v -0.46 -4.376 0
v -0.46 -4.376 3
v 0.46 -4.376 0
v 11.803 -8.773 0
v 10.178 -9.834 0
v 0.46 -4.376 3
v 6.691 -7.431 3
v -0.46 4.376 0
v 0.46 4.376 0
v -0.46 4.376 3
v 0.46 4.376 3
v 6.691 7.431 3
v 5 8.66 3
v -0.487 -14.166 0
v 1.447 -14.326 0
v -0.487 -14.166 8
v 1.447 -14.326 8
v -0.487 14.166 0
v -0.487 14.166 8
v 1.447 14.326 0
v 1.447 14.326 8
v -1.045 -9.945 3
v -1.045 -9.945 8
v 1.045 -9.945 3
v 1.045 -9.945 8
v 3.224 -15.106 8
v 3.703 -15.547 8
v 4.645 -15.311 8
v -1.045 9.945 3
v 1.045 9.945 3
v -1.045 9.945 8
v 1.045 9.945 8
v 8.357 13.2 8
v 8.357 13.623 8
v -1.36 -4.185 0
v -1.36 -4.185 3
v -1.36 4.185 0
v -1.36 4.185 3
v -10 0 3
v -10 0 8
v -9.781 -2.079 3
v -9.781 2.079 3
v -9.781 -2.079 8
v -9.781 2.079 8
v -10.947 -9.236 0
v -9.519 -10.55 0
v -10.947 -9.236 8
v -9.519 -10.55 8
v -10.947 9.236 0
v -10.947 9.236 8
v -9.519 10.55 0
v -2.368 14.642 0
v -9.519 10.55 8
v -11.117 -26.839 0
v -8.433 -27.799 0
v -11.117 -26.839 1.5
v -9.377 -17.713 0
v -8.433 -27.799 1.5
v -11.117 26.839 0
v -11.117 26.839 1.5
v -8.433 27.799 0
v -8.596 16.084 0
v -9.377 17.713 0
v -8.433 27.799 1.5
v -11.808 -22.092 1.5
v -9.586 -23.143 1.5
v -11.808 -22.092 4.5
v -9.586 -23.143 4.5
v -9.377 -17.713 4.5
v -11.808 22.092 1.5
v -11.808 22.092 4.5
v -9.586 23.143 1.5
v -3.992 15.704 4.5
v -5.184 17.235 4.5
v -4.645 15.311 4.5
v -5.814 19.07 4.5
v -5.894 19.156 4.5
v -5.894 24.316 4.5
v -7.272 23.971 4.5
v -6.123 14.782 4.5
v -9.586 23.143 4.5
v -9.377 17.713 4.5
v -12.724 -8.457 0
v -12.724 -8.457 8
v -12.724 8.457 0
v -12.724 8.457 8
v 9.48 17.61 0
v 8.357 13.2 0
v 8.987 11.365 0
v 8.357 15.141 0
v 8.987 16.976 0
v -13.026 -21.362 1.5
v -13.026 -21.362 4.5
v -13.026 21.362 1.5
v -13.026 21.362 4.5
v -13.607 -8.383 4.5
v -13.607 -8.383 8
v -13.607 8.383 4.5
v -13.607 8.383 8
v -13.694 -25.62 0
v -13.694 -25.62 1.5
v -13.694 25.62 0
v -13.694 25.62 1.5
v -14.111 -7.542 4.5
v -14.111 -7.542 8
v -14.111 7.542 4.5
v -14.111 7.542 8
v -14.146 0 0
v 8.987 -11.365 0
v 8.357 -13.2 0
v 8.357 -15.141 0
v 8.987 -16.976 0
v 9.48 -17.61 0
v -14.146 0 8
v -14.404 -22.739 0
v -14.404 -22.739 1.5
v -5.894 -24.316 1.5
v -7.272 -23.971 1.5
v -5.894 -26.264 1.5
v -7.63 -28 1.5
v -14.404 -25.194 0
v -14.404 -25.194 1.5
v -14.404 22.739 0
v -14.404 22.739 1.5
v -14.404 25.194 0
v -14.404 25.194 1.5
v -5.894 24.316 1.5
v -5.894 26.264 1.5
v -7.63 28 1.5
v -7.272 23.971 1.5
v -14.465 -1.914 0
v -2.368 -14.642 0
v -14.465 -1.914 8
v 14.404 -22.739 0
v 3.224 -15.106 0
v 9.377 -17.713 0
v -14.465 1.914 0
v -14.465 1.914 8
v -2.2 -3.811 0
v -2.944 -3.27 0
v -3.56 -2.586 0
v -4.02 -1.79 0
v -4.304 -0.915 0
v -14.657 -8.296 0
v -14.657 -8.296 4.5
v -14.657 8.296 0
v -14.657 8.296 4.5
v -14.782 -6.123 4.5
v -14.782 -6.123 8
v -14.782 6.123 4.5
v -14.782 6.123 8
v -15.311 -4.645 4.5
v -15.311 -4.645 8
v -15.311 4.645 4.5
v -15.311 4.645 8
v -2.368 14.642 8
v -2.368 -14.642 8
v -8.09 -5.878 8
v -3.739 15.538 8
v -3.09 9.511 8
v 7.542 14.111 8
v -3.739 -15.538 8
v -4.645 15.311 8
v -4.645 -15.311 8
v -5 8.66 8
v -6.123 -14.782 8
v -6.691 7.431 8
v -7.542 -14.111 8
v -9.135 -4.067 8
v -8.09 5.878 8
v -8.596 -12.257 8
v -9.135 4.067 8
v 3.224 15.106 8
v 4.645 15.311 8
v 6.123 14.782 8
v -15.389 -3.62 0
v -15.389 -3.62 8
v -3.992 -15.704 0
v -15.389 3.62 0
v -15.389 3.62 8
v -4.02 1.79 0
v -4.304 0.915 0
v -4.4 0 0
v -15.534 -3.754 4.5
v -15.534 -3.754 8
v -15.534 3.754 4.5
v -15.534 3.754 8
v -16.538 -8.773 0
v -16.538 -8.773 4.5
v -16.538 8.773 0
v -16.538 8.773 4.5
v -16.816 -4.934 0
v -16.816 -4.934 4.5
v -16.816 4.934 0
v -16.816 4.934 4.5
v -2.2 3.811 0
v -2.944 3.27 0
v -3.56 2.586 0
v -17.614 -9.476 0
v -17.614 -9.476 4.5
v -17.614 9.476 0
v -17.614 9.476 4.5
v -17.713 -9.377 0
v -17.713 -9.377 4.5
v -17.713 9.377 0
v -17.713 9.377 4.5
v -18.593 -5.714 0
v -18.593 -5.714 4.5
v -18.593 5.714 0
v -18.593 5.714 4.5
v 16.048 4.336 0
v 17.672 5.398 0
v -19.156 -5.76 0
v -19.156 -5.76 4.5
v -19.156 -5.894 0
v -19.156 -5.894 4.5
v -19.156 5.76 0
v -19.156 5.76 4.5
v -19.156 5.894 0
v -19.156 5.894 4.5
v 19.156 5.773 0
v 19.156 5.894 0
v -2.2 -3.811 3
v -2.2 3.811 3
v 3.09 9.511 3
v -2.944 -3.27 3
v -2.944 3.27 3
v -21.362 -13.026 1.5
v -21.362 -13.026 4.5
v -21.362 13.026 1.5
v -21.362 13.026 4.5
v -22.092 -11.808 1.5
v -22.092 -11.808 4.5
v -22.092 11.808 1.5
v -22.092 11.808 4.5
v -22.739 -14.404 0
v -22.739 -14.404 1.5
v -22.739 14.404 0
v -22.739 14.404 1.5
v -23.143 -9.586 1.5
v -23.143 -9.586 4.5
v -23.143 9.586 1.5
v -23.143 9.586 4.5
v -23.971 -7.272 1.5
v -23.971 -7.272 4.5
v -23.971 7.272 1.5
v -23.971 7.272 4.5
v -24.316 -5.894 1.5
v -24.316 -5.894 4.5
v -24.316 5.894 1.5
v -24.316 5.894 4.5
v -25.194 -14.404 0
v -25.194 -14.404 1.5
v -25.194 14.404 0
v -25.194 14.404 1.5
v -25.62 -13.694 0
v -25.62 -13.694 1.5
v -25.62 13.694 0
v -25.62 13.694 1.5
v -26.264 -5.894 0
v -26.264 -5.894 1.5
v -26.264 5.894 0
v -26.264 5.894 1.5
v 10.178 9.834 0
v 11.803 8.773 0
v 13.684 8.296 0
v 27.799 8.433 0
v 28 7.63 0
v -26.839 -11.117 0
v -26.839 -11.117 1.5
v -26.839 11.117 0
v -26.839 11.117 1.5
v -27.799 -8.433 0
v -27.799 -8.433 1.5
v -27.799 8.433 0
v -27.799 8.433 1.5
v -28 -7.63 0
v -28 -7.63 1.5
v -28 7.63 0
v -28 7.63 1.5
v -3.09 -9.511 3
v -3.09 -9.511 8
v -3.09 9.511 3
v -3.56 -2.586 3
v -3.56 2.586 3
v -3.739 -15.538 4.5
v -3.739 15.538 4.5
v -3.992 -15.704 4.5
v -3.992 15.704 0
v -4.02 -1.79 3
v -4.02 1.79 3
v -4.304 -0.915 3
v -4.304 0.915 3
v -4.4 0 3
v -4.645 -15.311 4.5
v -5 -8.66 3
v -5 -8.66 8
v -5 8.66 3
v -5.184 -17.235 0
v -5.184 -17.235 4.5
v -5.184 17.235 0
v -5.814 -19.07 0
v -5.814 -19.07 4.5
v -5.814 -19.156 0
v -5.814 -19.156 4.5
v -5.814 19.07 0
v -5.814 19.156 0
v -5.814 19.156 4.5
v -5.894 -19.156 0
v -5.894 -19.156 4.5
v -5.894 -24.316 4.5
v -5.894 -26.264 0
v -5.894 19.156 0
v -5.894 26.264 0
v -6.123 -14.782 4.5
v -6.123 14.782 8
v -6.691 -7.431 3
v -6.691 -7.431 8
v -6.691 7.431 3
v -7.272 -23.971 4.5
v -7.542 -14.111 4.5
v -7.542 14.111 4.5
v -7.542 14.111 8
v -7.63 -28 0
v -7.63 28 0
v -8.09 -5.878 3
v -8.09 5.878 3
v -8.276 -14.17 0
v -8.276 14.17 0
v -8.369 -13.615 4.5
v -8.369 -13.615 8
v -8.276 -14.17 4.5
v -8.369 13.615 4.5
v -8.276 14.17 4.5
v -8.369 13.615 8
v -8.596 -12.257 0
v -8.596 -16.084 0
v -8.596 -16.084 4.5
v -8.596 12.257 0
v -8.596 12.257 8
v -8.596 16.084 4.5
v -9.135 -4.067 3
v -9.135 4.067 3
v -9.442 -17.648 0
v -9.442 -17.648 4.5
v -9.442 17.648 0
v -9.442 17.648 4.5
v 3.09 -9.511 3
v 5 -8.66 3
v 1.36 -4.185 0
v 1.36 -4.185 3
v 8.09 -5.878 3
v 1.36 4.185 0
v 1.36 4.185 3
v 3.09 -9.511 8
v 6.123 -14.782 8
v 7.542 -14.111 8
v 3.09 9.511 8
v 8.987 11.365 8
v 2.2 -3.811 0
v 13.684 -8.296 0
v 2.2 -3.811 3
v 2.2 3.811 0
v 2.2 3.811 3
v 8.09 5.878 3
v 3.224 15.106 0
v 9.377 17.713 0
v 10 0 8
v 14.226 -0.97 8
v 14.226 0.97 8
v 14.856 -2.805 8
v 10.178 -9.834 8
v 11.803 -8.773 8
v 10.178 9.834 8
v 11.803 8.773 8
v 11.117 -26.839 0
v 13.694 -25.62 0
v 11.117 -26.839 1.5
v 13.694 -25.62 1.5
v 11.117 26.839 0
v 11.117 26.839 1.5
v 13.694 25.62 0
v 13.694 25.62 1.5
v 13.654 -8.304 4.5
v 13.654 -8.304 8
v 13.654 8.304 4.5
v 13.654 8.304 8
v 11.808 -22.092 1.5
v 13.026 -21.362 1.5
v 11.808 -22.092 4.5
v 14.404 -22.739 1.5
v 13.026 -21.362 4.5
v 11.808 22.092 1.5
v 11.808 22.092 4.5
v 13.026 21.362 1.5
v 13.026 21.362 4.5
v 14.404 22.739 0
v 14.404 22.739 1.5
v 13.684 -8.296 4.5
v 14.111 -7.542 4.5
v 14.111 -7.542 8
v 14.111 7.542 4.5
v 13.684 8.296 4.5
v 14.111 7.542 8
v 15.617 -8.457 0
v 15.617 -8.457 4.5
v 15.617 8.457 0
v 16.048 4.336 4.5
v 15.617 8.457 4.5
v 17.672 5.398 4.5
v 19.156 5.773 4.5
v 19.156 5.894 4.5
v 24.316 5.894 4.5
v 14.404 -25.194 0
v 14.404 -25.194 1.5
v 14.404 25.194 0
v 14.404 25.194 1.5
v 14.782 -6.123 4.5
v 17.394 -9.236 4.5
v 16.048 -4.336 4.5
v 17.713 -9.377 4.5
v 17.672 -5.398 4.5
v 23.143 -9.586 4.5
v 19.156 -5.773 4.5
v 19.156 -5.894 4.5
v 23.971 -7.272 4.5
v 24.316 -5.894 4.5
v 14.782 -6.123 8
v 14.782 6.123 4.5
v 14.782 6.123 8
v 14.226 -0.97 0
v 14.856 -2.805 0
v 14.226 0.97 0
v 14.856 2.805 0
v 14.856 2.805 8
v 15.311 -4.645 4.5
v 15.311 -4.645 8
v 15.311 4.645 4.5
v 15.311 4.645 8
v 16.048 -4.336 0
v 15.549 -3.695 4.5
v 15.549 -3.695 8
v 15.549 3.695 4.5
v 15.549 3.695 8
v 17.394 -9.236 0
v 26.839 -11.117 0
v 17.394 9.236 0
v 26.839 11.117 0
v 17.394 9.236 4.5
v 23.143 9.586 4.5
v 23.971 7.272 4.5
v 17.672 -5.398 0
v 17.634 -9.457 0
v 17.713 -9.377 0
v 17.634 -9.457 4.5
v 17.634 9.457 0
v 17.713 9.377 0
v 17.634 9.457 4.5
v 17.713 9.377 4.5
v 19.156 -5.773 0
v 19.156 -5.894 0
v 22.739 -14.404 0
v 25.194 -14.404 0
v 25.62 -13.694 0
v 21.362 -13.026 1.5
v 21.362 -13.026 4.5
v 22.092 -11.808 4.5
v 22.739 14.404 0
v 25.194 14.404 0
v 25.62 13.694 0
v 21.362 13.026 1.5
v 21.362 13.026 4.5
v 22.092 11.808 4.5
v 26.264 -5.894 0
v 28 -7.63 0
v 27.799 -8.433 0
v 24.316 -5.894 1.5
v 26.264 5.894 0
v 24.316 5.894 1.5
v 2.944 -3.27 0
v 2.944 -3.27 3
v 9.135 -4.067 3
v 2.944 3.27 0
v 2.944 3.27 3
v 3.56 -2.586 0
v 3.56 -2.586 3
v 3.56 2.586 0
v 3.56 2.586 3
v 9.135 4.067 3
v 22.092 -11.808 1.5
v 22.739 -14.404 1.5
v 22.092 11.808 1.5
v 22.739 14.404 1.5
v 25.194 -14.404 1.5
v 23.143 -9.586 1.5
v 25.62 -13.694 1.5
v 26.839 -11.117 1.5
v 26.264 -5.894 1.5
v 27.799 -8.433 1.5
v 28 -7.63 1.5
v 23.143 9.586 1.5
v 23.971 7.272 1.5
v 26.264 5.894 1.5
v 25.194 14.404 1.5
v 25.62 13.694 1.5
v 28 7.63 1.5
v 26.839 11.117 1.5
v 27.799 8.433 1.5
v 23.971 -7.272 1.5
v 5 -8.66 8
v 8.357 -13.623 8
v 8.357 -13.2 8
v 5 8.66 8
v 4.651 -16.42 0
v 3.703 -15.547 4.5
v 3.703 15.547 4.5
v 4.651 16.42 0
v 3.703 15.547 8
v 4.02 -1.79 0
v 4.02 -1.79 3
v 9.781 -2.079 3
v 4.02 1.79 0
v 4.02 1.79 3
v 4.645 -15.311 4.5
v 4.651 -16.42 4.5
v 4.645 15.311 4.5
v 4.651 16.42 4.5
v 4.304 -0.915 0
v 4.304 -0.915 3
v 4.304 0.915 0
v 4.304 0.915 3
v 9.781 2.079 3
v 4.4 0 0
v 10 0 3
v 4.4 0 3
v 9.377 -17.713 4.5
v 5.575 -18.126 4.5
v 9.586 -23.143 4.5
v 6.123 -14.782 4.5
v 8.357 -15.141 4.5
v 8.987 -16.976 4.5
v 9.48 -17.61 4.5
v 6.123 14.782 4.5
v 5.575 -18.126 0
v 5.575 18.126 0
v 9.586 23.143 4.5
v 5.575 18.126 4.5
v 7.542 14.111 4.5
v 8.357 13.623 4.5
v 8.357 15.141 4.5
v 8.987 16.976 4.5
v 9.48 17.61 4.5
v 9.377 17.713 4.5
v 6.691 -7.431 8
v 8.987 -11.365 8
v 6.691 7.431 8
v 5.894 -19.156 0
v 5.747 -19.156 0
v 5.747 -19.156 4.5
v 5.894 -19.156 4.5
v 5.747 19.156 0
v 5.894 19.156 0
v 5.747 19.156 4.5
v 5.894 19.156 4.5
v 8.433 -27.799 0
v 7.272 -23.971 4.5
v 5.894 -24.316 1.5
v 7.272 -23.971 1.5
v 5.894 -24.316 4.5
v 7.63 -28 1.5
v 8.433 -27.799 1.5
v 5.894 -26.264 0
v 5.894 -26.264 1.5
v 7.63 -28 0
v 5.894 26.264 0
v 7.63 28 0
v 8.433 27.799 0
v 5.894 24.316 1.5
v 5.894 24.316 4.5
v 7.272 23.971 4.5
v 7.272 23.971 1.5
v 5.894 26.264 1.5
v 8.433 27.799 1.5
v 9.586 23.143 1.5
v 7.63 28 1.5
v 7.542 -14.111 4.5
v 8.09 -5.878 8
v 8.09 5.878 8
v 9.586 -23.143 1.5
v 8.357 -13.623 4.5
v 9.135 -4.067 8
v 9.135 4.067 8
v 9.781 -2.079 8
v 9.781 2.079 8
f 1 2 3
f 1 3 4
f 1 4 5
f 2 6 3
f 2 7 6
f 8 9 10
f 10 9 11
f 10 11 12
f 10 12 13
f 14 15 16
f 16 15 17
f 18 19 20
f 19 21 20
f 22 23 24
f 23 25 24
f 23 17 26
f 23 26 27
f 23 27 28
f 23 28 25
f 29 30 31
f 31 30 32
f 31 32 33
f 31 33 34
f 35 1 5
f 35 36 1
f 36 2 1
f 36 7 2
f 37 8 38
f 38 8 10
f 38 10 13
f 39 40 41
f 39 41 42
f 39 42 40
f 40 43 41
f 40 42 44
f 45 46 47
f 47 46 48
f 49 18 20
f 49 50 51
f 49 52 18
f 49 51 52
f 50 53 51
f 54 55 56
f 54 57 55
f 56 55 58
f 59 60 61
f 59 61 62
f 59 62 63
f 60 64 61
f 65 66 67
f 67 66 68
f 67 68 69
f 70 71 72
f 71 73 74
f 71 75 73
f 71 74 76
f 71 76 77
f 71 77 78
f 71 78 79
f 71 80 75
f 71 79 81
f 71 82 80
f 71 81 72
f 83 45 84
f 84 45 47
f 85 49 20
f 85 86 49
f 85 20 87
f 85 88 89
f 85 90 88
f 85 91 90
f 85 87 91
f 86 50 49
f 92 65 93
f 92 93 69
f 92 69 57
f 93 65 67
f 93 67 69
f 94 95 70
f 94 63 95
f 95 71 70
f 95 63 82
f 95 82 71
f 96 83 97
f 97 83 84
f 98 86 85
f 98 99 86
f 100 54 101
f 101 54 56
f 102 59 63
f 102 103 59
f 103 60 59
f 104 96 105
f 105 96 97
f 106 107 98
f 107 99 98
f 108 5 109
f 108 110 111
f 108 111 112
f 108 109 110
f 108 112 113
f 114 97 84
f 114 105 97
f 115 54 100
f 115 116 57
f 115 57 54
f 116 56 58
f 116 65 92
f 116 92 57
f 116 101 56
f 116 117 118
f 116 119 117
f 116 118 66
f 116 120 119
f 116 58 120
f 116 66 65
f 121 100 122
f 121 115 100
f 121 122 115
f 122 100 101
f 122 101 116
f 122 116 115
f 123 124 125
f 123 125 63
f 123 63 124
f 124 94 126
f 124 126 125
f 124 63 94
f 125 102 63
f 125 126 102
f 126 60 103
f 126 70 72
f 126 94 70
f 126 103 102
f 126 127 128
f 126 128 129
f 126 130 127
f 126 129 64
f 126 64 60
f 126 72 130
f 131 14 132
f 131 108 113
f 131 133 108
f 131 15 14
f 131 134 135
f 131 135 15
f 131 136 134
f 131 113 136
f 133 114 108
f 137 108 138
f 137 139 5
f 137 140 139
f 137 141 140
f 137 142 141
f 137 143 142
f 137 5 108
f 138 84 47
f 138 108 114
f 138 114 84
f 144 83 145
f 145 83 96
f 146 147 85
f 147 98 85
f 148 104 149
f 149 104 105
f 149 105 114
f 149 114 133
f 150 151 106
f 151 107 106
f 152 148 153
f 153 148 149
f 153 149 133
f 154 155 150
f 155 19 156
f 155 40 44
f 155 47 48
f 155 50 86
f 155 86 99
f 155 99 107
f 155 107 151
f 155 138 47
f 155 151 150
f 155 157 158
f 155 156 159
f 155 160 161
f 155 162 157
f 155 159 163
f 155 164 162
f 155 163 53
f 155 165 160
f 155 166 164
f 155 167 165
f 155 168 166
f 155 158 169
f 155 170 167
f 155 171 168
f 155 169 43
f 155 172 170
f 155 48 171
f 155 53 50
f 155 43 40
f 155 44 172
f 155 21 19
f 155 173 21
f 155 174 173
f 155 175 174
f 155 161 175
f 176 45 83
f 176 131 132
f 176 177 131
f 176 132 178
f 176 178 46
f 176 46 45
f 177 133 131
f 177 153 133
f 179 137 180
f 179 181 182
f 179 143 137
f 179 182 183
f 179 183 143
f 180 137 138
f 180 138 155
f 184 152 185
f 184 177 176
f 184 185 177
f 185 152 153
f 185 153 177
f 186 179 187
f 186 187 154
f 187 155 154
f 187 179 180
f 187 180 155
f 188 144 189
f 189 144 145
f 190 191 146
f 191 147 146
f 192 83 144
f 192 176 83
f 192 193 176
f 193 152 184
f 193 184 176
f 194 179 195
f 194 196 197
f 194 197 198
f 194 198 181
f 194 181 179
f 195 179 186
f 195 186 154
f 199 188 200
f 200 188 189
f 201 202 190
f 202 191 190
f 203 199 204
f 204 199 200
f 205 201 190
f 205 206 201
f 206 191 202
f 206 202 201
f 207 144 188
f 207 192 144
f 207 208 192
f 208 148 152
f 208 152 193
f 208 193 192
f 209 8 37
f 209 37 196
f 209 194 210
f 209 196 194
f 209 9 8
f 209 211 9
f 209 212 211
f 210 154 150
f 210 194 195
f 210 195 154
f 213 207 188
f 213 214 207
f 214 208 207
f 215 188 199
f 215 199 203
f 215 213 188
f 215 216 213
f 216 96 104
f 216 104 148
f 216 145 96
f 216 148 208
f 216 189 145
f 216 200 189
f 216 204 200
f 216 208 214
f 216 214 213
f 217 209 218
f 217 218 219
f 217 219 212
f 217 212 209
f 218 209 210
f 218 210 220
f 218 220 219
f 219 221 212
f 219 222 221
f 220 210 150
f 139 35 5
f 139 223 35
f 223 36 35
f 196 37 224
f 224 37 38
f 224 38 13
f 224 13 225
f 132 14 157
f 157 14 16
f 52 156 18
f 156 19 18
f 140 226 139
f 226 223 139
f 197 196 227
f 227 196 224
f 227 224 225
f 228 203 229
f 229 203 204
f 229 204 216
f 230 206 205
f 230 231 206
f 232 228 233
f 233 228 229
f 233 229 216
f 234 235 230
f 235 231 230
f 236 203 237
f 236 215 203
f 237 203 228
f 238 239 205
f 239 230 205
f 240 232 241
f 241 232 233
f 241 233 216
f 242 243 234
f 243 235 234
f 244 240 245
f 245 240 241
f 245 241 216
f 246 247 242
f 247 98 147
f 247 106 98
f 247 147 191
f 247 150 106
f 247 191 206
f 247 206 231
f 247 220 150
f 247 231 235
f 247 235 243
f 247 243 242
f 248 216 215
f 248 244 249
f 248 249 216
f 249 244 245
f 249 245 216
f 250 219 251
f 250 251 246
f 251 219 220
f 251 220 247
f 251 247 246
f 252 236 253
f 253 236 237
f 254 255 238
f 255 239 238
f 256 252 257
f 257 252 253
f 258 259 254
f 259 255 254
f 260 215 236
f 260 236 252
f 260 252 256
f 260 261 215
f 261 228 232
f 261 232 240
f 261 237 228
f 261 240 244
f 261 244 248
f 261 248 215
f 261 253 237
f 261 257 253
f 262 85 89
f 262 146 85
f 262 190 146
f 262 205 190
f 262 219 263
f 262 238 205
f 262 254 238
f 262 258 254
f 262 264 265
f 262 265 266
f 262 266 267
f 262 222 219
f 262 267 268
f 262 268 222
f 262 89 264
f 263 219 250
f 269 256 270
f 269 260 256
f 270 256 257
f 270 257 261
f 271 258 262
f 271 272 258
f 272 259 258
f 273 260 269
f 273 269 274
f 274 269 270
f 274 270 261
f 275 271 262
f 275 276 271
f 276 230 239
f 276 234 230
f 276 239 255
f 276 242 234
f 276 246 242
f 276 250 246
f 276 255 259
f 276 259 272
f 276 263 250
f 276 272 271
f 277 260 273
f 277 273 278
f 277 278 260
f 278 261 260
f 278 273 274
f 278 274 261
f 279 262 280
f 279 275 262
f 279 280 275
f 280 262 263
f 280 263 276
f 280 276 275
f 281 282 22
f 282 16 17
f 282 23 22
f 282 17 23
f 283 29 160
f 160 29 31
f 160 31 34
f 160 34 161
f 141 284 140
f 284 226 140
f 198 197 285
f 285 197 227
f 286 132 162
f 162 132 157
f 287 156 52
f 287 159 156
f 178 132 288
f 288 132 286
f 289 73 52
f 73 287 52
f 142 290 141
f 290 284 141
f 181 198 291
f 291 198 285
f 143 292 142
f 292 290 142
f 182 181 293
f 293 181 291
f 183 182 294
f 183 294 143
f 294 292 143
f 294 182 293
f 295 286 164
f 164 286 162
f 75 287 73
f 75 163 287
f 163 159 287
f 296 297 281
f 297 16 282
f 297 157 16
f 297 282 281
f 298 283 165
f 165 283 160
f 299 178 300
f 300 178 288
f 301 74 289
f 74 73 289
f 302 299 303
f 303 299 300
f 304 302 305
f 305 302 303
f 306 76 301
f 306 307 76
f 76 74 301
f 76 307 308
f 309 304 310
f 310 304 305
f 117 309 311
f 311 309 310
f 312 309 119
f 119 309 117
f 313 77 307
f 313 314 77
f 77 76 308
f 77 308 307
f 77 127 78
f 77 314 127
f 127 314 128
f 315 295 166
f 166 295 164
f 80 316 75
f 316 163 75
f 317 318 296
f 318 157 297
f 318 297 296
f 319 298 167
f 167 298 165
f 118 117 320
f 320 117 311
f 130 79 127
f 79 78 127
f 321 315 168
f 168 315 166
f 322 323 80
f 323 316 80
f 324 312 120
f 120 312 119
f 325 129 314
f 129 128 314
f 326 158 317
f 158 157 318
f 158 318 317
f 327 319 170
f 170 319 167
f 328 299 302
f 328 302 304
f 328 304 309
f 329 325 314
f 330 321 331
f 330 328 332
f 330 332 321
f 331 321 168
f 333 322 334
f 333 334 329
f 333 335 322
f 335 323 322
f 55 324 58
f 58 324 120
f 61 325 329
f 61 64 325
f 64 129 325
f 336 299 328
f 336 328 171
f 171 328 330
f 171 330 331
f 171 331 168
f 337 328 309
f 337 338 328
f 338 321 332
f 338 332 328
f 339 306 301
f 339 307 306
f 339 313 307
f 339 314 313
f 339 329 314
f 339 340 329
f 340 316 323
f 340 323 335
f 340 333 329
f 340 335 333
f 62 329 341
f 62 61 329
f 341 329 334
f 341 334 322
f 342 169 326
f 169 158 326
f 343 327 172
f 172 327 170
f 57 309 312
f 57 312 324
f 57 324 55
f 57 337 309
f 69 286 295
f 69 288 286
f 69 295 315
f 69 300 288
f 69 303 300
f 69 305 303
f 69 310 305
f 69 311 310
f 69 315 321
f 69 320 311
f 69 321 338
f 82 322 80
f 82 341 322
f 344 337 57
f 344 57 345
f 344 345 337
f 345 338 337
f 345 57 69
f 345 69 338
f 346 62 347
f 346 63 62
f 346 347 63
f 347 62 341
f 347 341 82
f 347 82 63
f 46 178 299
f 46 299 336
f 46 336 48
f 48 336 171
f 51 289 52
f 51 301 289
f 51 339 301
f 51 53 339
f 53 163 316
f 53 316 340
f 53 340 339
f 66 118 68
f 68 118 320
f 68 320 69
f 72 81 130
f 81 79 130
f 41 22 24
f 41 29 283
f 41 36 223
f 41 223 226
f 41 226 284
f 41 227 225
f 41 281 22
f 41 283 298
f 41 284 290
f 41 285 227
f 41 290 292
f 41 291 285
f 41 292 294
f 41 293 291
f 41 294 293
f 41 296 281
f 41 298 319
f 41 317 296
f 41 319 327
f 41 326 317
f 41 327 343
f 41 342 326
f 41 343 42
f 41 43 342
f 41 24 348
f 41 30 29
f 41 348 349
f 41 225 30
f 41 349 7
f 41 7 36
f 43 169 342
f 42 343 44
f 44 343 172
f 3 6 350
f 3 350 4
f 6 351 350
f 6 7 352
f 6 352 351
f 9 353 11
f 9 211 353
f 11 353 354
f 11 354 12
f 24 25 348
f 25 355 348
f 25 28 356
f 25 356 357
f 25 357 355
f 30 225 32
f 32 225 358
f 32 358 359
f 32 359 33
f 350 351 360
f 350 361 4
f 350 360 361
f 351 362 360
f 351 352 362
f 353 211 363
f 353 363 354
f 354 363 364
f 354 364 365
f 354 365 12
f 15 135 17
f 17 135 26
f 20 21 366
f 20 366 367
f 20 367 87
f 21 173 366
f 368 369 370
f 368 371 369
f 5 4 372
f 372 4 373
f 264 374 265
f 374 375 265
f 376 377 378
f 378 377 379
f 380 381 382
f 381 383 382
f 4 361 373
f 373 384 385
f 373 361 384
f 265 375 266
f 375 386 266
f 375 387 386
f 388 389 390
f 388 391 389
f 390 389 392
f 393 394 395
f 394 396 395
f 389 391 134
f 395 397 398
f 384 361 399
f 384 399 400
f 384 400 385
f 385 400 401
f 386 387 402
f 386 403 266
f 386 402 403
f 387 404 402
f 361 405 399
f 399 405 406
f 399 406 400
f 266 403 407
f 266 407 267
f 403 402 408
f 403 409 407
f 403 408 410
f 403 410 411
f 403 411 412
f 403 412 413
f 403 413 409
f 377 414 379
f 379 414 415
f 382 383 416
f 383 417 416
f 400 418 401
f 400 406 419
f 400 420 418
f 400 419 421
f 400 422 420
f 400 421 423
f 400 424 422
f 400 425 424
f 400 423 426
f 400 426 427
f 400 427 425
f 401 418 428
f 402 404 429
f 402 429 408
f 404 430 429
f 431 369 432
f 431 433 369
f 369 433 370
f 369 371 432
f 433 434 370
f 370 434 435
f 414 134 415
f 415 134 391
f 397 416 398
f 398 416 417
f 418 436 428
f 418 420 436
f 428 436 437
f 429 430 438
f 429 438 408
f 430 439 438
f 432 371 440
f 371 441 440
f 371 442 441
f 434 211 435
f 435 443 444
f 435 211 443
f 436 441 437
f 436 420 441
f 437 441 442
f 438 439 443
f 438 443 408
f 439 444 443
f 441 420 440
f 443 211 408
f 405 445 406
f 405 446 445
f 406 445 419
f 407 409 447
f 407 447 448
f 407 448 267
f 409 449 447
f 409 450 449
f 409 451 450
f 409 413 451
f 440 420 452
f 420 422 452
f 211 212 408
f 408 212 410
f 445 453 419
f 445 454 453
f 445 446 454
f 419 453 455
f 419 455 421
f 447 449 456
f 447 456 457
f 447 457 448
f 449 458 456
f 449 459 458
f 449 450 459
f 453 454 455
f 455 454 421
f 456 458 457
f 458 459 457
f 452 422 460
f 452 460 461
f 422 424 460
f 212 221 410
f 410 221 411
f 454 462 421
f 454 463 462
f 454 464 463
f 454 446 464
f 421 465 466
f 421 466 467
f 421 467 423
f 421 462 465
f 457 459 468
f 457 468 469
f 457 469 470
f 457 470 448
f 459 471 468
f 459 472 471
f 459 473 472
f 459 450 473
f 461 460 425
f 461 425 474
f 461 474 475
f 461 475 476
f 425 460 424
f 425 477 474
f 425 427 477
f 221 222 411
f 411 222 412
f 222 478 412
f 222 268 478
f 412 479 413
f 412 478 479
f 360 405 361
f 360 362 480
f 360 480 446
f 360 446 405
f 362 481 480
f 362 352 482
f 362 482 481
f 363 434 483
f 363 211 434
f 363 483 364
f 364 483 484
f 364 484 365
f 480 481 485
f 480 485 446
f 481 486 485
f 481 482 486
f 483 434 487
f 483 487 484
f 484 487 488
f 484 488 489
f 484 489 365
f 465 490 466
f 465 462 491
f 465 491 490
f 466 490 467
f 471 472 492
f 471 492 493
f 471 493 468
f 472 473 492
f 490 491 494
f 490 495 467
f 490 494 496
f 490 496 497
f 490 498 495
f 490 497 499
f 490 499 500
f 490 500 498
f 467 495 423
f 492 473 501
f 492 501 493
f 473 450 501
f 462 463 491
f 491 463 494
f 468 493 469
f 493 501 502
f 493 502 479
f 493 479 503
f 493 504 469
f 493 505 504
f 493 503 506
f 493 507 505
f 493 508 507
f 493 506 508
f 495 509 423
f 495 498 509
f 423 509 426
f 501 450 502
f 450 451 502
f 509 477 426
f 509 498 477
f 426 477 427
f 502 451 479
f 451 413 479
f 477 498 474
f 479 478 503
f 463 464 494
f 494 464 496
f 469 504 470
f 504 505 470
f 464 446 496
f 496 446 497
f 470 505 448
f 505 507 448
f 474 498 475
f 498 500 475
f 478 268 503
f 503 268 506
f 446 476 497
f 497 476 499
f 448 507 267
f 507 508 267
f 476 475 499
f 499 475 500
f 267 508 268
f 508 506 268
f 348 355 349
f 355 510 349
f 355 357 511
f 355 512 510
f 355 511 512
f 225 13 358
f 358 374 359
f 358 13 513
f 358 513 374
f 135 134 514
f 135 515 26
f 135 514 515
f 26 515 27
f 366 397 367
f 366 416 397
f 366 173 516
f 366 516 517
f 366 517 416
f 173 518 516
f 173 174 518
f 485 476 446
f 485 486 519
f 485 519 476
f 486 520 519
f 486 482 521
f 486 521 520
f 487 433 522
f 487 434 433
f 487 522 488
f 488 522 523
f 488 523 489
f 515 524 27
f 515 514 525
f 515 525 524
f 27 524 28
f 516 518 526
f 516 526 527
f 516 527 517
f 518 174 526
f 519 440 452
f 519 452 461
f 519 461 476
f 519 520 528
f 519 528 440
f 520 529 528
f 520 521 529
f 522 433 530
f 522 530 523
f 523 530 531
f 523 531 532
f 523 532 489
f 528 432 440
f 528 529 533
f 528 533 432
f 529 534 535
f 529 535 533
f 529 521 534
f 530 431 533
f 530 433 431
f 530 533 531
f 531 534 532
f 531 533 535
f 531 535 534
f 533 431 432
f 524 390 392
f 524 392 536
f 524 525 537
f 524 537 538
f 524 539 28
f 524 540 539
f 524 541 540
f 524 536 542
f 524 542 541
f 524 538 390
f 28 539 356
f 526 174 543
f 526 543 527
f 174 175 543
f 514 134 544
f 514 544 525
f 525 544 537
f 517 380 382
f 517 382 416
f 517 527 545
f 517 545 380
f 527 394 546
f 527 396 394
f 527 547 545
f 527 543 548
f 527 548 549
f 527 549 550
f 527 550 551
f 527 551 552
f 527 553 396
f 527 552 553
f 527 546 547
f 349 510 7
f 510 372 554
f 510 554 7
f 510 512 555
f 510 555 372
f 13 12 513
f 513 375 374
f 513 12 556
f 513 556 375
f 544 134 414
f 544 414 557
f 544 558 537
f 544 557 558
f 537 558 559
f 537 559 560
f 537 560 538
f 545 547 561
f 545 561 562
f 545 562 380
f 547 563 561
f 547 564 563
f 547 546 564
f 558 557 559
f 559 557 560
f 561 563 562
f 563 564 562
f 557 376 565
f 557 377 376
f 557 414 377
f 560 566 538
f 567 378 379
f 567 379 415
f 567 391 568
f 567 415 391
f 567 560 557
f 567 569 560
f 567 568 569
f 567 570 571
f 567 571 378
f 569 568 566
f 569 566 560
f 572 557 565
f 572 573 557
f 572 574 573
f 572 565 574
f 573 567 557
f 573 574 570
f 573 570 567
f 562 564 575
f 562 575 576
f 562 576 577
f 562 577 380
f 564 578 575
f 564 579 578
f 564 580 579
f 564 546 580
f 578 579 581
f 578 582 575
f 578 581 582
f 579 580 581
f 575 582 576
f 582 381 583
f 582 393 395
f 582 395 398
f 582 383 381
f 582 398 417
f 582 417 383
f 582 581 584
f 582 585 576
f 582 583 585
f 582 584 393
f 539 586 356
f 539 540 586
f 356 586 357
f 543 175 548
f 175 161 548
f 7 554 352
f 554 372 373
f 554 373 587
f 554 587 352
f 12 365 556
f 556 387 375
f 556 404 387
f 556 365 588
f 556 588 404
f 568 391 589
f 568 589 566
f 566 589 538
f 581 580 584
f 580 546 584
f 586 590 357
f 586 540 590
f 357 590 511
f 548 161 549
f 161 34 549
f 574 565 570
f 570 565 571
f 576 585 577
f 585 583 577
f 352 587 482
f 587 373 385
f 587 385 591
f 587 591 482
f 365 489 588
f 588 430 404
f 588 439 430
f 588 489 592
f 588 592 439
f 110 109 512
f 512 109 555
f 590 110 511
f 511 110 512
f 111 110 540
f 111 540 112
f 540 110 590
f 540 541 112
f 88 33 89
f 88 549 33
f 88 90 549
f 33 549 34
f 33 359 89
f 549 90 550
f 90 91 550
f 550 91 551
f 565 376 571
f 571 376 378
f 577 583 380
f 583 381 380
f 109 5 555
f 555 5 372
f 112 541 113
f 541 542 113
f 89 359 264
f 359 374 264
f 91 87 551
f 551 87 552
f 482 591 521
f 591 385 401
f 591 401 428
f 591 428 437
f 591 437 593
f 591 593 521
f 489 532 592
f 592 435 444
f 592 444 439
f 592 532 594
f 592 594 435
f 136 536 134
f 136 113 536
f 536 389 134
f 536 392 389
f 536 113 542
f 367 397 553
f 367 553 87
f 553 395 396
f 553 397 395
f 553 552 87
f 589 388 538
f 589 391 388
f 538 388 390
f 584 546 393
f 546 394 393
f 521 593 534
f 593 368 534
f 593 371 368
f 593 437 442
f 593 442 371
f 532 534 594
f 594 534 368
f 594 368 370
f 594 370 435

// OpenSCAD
// RebeliX
//
// spool center
// GNU GPL v3
// Martin Neruda <neruda@reprap4u.cz>
// http://www.reprap4u.cz

// Prumer otvoru v civce
spool_hole_big = 50.1; // "plasty Mladec"
spool_hole_small = 32; // "MK Floria"

union() {
    difference()
    {
	    union ()
	    {
		    cylinder(h=4.5,r=(spool_hole_big/2),$fn=64);
		    cylinder(h=1.5, r=(spool_hole_big/2)+4,$fn=64);
			cylinder(h=8,r=(spool_hole_small/2),$fn=64);
	    }
	    translate([0,0,-0.1]) cylinder (h=13,r=4.4,$fn=30);
		for ( i = [0 : 45 : 360] ){
		    translate([sin(i)*(spool_hole_big/2.5),cos(i)*(spool_hole_big/2.5),-0.1]) cylinder(h=13,r=(spool_hole_big/8.5));
			translate([sin(i)*(spool_hole_big/2),cos(i)*(spool_hole_big/2),-0.1]) rotate([0,0,i]) cube([2*(spool_hole_big/8.5),2*(spool_hole_big/8.5),10],center=true);
			translate([sin(i+10)*(spool_hole_big/1.7),cos(i+10)*(spool_hole_big/1.7),-0.1]) rotate([0,0,i+45]) cube([5,5,5],center=true);
			translate([sin(i-10)*(spool_hole_big/1.7),cos(i-10)*(spool_hole_big/1.7),-0.1]) rotate([0,0,i+45]) cube([5,5,5],center=true);
		}		
		translate([0,0,3]) cylinder(h=10,r=(spool_hole_small-12)/2);
    }
}
